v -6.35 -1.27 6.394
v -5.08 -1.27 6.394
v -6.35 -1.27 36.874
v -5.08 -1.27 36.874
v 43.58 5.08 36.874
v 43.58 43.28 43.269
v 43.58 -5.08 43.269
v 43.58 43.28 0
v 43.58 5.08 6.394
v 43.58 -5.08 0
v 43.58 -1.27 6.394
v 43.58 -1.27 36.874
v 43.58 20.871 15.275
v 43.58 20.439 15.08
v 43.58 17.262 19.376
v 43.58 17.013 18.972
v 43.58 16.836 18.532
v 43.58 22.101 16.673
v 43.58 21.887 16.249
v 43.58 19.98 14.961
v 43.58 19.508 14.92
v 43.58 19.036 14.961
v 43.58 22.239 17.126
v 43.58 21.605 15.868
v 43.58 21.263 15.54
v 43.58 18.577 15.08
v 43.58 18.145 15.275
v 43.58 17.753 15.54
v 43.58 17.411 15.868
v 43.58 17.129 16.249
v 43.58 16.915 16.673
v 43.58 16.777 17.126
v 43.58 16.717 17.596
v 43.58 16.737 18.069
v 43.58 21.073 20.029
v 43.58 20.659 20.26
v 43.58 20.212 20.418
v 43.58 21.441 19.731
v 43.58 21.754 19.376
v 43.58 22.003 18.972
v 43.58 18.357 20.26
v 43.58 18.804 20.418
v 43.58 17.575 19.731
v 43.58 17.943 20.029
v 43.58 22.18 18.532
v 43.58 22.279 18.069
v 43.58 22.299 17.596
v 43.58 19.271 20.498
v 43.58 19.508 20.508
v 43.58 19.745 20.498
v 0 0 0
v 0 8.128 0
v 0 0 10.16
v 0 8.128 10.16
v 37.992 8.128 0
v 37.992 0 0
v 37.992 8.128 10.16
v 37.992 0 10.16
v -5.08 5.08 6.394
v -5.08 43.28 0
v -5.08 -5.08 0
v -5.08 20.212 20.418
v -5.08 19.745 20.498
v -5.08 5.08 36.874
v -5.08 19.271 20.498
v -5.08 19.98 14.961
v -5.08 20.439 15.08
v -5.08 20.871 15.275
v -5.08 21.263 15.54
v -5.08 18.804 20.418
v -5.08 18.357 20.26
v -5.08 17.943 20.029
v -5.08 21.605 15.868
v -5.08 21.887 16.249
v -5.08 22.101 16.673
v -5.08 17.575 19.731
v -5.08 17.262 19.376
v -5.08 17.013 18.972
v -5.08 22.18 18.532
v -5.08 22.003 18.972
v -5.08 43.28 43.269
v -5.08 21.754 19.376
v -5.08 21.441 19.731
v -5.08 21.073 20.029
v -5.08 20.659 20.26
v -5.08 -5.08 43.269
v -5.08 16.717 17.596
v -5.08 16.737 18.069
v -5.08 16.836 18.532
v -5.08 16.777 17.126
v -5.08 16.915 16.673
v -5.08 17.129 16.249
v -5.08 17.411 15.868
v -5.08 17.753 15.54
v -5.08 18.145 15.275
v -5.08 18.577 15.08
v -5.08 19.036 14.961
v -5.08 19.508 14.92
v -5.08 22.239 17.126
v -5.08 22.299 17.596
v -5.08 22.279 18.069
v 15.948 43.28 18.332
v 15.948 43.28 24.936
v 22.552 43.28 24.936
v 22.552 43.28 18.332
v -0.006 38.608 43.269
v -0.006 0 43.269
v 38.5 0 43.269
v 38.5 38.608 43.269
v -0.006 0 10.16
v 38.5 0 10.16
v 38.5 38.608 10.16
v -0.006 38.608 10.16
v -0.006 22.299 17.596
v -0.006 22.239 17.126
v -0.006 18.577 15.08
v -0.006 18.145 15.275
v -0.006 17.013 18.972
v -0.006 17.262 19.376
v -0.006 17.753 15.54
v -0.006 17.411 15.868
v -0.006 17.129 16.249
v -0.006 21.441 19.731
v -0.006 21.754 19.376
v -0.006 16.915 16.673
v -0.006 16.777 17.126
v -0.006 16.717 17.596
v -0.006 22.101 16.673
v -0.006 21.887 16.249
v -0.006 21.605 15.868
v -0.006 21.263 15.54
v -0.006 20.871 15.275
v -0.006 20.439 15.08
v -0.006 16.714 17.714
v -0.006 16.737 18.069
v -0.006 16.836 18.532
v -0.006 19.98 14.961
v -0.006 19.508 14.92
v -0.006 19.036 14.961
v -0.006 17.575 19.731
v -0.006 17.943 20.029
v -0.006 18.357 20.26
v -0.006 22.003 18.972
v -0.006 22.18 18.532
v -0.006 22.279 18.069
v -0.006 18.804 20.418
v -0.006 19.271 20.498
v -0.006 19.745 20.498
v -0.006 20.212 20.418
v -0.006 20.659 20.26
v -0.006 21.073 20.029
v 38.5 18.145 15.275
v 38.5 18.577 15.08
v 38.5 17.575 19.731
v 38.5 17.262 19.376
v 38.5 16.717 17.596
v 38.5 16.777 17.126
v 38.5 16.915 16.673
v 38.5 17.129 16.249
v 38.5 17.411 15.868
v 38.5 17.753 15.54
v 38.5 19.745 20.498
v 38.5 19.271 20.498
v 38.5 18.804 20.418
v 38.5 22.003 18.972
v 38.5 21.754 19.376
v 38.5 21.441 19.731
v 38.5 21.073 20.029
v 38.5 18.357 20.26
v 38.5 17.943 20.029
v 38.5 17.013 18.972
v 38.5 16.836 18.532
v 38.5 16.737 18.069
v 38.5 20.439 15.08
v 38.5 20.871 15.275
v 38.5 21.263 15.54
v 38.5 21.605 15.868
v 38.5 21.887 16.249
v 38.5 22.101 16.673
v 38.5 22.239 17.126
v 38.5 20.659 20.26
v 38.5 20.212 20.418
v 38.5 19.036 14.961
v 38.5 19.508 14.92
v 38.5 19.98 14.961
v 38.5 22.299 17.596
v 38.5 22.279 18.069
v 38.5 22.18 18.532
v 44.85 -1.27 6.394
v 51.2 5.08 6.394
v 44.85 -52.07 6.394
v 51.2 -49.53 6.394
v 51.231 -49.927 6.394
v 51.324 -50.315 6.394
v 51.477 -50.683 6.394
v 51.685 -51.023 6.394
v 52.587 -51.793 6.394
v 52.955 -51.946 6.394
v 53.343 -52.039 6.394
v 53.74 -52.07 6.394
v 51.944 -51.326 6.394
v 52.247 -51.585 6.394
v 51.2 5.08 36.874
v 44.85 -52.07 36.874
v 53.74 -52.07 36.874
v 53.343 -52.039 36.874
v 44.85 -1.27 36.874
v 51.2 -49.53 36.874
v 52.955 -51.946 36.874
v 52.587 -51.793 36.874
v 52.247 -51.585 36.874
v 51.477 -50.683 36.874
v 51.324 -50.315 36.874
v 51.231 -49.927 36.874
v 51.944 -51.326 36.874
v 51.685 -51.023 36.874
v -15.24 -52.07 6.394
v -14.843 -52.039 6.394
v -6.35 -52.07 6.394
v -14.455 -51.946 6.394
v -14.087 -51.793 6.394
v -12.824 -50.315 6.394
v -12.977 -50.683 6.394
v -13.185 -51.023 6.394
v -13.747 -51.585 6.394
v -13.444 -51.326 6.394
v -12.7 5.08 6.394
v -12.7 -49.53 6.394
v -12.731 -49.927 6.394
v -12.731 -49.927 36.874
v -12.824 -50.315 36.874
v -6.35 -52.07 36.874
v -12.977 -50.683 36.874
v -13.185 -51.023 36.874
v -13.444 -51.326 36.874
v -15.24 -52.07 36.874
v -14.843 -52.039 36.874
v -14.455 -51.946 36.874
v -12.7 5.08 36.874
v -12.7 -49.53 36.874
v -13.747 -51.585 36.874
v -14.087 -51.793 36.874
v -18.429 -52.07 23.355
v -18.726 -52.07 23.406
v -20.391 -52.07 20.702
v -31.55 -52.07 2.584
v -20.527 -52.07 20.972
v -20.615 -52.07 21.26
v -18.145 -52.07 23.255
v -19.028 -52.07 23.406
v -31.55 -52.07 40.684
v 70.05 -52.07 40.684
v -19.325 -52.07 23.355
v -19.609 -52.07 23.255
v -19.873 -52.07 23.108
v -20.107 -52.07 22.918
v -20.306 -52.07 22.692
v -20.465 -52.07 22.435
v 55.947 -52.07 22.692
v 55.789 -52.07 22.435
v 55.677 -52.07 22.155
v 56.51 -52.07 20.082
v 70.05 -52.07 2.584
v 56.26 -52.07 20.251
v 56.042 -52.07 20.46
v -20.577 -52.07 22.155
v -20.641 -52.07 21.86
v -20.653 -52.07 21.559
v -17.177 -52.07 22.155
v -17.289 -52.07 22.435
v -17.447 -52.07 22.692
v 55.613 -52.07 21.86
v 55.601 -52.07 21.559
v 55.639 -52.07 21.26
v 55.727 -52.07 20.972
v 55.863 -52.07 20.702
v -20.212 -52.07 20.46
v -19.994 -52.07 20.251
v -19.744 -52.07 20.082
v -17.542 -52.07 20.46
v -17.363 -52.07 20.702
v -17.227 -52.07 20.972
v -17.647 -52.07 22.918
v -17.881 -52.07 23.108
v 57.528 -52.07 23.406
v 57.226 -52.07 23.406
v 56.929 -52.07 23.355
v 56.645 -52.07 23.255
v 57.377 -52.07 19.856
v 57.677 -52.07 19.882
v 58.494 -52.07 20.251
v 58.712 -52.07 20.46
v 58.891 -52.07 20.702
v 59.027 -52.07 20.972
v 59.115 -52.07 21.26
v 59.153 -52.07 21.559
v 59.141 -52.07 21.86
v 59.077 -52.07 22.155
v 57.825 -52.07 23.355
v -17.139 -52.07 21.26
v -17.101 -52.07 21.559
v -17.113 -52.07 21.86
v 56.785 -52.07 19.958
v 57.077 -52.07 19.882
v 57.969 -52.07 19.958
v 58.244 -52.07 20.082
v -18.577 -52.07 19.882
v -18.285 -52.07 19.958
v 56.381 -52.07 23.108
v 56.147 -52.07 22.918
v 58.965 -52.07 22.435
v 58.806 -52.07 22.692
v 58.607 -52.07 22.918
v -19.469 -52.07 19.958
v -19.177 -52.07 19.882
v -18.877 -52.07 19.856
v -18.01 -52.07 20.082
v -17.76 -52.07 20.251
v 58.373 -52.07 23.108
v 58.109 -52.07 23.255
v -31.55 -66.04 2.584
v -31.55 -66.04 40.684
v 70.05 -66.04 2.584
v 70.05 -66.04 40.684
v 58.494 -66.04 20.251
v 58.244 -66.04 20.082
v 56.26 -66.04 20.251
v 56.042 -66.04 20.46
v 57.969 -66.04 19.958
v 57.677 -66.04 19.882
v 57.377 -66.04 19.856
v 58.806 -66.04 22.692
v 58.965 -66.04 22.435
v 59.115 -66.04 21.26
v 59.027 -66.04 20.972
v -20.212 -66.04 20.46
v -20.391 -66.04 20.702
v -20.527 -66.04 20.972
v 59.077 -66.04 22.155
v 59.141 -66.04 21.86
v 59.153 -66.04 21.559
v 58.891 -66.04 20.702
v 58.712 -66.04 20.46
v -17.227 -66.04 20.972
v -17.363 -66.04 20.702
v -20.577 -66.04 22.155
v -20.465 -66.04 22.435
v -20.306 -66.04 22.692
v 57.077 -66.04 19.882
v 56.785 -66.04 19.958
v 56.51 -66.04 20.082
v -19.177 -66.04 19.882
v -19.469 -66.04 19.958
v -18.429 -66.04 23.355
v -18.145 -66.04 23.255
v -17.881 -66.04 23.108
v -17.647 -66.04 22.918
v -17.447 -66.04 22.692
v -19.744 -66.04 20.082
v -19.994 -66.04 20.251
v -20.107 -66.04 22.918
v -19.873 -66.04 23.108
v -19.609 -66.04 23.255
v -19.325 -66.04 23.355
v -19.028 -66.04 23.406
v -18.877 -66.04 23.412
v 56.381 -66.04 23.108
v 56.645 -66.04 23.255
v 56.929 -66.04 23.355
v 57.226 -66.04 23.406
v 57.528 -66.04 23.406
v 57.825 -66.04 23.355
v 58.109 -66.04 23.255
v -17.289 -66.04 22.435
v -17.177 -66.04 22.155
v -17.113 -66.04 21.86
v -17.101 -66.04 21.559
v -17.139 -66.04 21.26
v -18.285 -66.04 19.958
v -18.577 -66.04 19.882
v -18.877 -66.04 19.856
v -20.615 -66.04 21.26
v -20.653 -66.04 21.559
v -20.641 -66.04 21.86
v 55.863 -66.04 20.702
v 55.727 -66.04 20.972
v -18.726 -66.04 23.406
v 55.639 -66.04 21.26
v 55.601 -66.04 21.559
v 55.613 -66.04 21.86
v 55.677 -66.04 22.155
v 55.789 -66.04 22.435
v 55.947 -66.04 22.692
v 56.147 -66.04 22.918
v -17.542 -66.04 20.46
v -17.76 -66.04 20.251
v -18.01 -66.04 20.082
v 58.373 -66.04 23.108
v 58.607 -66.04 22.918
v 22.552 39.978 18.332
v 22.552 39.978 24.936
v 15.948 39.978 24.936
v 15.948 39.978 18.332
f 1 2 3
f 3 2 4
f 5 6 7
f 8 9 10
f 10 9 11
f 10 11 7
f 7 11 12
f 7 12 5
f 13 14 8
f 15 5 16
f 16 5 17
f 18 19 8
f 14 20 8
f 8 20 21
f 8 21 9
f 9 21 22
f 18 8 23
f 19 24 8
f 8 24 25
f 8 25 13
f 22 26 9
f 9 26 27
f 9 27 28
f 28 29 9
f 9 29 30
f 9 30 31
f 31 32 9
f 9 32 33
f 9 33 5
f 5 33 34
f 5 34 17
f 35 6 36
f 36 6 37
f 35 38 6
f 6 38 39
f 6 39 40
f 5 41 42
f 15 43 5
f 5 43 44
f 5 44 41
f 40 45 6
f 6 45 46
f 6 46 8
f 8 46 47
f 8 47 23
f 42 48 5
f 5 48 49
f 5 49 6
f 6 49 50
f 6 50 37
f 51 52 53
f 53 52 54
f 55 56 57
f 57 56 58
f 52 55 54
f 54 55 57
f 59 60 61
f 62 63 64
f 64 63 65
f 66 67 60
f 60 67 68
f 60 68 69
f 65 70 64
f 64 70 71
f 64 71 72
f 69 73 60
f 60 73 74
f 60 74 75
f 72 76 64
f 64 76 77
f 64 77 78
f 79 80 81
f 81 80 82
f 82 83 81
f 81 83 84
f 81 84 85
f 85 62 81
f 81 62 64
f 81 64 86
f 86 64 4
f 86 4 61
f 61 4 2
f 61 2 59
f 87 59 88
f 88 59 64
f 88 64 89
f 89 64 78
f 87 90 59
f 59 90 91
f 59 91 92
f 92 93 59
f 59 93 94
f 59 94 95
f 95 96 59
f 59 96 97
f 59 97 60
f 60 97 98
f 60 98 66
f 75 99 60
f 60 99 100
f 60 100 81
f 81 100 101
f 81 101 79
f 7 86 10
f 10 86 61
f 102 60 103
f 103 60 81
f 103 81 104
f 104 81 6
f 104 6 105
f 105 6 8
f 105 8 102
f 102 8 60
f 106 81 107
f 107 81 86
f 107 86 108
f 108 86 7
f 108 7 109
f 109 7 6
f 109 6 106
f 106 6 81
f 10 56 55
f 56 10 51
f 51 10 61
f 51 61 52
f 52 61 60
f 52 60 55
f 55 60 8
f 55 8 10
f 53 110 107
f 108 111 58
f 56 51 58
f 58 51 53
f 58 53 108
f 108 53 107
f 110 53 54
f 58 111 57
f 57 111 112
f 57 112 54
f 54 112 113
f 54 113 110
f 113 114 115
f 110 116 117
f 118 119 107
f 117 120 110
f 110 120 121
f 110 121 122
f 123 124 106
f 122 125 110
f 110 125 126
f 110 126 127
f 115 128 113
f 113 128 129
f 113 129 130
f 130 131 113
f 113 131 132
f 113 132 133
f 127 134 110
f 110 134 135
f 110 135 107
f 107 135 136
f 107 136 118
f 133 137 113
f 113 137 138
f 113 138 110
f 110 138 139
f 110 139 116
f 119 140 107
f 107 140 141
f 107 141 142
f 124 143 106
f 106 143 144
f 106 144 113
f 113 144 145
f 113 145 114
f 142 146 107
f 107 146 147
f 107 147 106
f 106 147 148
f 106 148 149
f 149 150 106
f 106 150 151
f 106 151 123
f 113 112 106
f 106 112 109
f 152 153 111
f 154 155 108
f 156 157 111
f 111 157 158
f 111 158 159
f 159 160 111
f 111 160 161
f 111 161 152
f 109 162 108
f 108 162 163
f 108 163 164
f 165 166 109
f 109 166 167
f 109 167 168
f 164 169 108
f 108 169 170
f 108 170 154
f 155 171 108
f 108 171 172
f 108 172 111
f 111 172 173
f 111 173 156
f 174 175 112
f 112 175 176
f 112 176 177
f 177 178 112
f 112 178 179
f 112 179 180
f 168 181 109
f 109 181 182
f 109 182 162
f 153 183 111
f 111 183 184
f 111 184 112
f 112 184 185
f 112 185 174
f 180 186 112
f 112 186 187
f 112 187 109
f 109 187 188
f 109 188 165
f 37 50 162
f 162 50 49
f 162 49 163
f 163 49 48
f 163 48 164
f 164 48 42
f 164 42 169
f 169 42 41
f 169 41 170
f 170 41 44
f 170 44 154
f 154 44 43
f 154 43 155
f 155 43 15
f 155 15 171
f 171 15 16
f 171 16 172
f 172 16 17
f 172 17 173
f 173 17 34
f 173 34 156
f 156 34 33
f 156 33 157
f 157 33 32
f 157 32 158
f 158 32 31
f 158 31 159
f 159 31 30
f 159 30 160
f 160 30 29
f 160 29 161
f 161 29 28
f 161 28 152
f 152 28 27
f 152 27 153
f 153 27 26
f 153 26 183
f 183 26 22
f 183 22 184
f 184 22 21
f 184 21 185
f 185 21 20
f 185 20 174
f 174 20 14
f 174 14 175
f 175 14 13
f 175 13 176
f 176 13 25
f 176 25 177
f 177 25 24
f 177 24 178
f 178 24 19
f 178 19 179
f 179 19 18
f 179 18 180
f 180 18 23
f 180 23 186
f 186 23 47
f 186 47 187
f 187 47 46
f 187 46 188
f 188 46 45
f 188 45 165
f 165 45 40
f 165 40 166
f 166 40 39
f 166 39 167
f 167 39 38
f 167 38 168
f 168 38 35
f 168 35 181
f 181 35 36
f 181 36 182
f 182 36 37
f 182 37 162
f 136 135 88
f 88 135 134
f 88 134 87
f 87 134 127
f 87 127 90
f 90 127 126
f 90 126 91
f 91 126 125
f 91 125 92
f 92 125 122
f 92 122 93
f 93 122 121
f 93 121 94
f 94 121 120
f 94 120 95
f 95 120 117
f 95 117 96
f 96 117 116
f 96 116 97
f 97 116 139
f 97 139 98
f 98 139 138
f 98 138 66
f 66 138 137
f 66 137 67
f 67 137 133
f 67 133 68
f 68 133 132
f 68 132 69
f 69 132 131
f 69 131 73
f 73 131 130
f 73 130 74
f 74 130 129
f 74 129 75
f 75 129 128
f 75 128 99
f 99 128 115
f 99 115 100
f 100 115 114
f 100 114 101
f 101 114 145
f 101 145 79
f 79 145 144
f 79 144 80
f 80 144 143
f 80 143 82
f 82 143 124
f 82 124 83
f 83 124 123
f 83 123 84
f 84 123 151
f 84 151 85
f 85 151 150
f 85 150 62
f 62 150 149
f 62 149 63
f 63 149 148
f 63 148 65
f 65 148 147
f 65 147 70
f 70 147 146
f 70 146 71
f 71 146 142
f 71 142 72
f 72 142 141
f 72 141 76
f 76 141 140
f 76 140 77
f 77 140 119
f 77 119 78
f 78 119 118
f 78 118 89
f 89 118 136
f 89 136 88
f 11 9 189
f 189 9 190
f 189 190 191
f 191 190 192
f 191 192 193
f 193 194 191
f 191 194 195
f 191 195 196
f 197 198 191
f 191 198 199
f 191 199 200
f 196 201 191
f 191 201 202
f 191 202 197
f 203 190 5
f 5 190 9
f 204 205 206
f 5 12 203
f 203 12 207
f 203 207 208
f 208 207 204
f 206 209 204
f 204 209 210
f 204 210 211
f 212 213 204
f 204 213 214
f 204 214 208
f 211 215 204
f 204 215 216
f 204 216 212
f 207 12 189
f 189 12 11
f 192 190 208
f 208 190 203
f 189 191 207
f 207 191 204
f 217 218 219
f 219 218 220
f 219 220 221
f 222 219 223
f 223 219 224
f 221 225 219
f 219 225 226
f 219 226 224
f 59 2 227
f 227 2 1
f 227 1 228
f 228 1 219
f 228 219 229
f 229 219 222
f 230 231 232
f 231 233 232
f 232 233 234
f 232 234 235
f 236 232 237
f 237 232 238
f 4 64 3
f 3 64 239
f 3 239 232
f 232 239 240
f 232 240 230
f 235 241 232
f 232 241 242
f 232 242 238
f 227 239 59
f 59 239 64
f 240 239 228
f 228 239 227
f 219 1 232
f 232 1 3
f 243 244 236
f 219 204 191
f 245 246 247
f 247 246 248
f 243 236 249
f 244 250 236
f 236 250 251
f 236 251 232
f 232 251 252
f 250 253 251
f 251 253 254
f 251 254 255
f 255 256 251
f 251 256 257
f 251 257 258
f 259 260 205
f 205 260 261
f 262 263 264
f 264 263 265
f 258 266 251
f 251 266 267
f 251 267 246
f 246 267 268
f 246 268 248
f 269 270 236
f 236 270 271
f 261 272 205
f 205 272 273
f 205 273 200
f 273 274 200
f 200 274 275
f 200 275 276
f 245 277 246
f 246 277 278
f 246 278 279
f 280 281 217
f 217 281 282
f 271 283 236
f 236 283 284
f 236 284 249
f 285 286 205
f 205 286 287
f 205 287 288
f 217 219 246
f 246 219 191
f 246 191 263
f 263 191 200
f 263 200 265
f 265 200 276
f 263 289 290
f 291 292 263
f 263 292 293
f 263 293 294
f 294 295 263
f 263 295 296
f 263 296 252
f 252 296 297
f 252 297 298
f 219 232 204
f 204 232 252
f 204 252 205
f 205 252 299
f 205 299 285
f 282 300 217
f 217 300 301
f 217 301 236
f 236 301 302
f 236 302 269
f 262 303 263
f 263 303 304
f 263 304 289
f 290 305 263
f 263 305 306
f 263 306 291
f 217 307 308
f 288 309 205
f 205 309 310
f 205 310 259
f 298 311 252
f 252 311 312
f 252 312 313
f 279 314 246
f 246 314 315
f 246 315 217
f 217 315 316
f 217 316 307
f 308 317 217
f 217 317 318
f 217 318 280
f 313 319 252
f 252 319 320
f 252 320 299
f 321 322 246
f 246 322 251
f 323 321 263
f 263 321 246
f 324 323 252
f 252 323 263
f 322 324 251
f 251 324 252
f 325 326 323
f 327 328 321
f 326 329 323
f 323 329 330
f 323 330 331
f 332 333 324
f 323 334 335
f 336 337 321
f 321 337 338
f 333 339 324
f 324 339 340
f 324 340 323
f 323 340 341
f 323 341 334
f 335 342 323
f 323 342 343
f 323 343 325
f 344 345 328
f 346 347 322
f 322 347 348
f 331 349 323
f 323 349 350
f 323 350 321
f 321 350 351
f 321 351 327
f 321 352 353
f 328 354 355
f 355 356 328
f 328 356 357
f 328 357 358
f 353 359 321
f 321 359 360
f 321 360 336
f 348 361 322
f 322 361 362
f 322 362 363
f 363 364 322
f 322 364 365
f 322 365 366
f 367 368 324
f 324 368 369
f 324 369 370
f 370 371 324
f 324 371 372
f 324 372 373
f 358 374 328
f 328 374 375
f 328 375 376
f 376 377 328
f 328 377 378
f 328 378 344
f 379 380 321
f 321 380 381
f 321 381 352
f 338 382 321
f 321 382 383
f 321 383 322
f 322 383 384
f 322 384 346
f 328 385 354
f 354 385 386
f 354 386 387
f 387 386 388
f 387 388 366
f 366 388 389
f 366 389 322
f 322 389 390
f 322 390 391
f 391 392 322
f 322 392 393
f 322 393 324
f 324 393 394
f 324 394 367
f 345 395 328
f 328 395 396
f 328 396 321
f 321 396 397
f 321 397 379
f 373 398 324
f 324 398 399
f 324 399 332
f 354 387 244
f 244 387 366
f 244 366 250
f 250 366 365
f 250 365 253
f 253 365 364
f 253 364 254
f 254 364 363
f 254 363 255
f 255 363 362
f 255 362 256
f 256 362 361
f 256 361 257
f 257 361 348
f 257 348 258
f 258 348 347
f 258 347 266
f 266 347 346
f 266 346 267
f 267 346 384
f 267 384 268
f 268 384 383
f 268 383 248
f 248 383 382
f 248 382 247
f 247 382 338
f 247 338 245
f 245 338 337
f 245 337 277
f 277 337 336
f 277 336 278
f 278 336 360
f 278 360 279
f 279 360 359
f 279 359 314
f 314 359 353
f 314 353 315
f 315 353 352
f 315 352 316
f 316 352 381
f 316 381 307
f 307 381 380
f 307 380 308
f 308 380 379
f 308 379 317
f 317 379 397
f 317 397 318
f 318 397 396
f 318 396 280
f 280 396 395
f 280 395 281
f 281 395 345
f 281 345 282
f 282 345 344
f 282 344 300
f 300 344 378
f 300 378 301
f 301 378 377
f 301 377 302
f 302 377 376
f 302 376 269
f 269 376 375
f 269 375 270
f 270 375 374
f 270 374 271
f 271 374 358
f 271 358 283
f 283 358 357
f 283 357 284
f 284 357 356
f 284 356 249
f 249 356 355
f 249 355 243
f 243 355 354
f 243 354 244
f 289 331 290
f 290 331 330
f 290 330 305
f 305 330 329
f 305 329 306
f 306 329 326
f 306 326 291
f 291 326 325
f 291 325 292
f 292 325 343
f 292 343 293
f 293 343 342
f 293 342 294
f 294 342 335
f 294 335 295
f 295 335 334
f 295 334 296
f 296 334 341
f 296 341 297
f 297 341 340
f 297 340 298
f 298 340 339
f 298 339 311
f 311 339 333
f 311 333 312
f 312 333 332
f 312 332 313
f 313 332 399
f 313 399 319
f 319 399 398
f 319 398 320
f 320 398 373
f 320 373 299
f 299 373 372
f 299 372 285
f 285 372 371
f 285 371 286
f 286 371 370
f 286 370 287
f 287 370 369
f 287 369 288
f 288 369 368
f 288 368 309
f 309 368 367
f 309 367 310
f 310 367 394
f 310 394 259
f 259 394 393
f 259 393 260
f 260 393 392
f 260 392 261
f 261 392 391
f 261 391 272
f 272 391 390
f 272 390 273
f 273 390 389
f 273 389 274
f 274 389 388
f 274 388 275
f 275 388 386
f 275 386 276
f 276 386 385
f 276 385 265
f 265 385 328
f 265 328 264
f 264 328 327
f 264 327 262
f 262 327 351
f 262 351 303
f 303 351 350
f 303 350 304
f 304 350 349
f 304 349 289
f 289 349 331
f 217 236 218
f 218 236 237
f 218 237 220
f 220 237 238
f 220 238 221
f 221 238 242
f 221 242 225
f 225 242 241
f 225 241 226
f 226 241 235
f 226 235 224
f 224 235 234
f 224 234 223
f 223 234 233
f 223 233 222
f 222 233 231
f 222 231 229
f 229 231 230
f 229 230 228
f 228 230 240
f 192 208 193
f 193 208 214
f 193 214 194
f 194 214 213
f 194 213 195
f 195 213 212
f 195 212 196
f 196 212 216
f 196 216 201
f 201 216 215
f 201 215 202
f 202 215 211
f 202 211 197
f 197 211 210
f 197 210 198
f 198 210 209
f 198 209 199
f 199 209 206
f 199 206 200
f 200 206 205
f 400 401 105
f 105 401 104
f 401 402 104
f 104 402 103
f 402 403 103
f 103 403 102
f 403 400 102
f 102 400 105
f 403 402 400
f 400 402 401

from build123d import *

# Parameters (mm, degrees)
SKETCH2_W               = 48.66
SKETCH2_H               = 48.36
BOSS_EXTRUDE1_DEPTH     = 43.2689
SKETCH3_W               = 37.992
SKETCH3_H               = 8.128
CUT_EXTRUDE1_DEPTH      = 38.1889
SKETCH4_W               = 38.5064
SKETCH4_H               = 38.608
CUT_EXTRUDE2_DEPTH      = 33.1089
SKETCH6_R               = 2.794
CUT_EXTRUDE3_DEPTH      = 78.486
CUT_EXTRUDE3_DEPTH_BACK = 23.622
SKETCH7_W               = 30.48
SKETCH7_H               = 6.35
BOSS_EXTRUDE2_DEPTH     = 7.62
SKETCH9_W               = 6.35
SKETCH9_H               = 50.8
BOSS_EXTRUDE3_DEPTH     = 30.48
SKETCH11_W              = 101.6
SKETCH11_H              = 38.1
BOSS_EXTRUDE4_DEPTH     = 13.97
SKETCH14_R              = 1.778
CUT_EXTRUDE4_DEPTH      = 13.97
FILLET1_R               = 2.54
SKETCH15_W              = 6.604
SKETCH15_H              = 6.604
CUT_EXTRUDE5_DEPTH      = 3.302


with BuildPart() as part:
    # Sketch2 → Boss-Extrude1 (new body)
    with BuildSketch(Plane.XY):
        with Locations((19.25, 19.1)):
            Rectangle(SKETCH2_W, SKETCH2_H)
    extrude(amount=BOSS_EXTRUDE1_DEPTH)

    # Sketch3 → Cut-Extrude1 (cut)
    with BuildSketch(Plane(origin=(0, 0, 0), x_dir=(-1, 0, 0), z_dir=(0, 0, -1))):
        with Locations((-18.996, 4.064)):
            Rectangle(SKETCH3_W, SKETCH3_H)
    extrude(amount=-CUT_EXTRUDE1_DEPTH, mode=Mode.SUBTRACT)

    # Sketch4 → Cut-Extrude2 (cut)
    with BuildSketch(Plane.XY.offset(43.2689)):
        with Locations((19.2468, 19.304)):
            Rectangle(SKETCH4_W, SKETCH4_H)
    extrude(amount=-CUT_EXTRUDE2_DEPTH, mode=Mode.SUBTRACT)

    # Sketch6 → Cut-Extrude3 (cut, two sides)
    with BuildSketch(Plane.ZY.offset(-38.5)) as cut_extrude3_sk:
        with Locations((17.714319607, 19.508)):
            Circle(SKETCH6_R)
    extrude(amount=CUT_EXTRUDE3_DEPTH, mode=Mode.SUBTRACT)
    extrude(cut_extrude3_sk.sketch, amount=-CUT_EXTRUDE3_DEPTH_BACK, mode=Mode.SUBTRACT)

    # Sketch7 → Boss-Extrude2 (add)
    with BuildSketch(Plane(origin=(43.58, 0, 0), x_dir=(0, 0, -1), z_dir=(1, 0, 0))):
        with Locations((-21.63445, 1.905)):
            Rectangle(SKETCH7_W, SKETCH7_H)
    boss_extrude2 = extrude(amount=BOSS_EXTRUDE2_DEPTH)

    # Sketch9 → Boss-Extrude3 (add)
    with BuildSketch(Plane.XY.offset(36.87445)):
        with Locations((48.025, -26.67)):
            Rectangle(SKETCH9_W, SKETCH9_H)
    boss_extrude3 = extrude(amount=-BOSS_EXTRUDE3_DEPTH)

    # Mirror1: Boss-Extrude2, Boss-Extrude3 across plane
    add(boss_extrude2.mirror(Plane(origin=(19.25, 0, 0), x_dir=(0, 0, 1), z_dir=(1, 0, 0))))
    add(boss_extrude3.mirror(Plane(origin=(19.25, 0, 0), x_dir=(0, 0, 1), z_dir=(1, 0, 0))))

    # Sketch11 → Boss-Extrude4 (add)
    with BuildSketch(Plane.XZ.offset(52.07)):
        with Locations((19.25, 21.63445)):
            Rectangle(SKETCH11_W, SKETCH11_H)
    extrude(amount=BOSS_EXTRUDE4_DEPTH)

    # Sketch14 → Cut-Extrude4 (cut)
    with BuildSketch(Plane.XZ.offset(66.04)):
        with Locations((57.376985722, 21.63445)):
            Circle(SKETCH14_R)
        with Locations((-18.876985722, 21.63445)):
            Circle(SKETCH14_R)
    extrude(amount=-CUT_EXTRUDE4_DEPTH, mode=Mode.SUBTRACT)

    # Fillet1
    fillet1_edges = [part.edges().sort_by_distance(p)[0] for p in [
        (-12.7, -52.07, 21.63445),
        (51.2, -52.07, 21.63445),
    ]]
    fillet(fillet1_edges, radius=FILLET1_R)

    # Sketch15 → Cut-Extrude5 (cut)
    with BuildSketch(Plane(origin=(0, 43.28, 0), x_dir=(1, 0, 0), z_dir=(0, 1, 0))):
        with Locations((19.25, -21.63445)):
            Rectangle(SKETCH15_W, SKETCH15_H)
    extrude(amount=-CUT_EXTRUDE5_DEPTH, mode=Mode.SUBTRACT)


solid = part.part
